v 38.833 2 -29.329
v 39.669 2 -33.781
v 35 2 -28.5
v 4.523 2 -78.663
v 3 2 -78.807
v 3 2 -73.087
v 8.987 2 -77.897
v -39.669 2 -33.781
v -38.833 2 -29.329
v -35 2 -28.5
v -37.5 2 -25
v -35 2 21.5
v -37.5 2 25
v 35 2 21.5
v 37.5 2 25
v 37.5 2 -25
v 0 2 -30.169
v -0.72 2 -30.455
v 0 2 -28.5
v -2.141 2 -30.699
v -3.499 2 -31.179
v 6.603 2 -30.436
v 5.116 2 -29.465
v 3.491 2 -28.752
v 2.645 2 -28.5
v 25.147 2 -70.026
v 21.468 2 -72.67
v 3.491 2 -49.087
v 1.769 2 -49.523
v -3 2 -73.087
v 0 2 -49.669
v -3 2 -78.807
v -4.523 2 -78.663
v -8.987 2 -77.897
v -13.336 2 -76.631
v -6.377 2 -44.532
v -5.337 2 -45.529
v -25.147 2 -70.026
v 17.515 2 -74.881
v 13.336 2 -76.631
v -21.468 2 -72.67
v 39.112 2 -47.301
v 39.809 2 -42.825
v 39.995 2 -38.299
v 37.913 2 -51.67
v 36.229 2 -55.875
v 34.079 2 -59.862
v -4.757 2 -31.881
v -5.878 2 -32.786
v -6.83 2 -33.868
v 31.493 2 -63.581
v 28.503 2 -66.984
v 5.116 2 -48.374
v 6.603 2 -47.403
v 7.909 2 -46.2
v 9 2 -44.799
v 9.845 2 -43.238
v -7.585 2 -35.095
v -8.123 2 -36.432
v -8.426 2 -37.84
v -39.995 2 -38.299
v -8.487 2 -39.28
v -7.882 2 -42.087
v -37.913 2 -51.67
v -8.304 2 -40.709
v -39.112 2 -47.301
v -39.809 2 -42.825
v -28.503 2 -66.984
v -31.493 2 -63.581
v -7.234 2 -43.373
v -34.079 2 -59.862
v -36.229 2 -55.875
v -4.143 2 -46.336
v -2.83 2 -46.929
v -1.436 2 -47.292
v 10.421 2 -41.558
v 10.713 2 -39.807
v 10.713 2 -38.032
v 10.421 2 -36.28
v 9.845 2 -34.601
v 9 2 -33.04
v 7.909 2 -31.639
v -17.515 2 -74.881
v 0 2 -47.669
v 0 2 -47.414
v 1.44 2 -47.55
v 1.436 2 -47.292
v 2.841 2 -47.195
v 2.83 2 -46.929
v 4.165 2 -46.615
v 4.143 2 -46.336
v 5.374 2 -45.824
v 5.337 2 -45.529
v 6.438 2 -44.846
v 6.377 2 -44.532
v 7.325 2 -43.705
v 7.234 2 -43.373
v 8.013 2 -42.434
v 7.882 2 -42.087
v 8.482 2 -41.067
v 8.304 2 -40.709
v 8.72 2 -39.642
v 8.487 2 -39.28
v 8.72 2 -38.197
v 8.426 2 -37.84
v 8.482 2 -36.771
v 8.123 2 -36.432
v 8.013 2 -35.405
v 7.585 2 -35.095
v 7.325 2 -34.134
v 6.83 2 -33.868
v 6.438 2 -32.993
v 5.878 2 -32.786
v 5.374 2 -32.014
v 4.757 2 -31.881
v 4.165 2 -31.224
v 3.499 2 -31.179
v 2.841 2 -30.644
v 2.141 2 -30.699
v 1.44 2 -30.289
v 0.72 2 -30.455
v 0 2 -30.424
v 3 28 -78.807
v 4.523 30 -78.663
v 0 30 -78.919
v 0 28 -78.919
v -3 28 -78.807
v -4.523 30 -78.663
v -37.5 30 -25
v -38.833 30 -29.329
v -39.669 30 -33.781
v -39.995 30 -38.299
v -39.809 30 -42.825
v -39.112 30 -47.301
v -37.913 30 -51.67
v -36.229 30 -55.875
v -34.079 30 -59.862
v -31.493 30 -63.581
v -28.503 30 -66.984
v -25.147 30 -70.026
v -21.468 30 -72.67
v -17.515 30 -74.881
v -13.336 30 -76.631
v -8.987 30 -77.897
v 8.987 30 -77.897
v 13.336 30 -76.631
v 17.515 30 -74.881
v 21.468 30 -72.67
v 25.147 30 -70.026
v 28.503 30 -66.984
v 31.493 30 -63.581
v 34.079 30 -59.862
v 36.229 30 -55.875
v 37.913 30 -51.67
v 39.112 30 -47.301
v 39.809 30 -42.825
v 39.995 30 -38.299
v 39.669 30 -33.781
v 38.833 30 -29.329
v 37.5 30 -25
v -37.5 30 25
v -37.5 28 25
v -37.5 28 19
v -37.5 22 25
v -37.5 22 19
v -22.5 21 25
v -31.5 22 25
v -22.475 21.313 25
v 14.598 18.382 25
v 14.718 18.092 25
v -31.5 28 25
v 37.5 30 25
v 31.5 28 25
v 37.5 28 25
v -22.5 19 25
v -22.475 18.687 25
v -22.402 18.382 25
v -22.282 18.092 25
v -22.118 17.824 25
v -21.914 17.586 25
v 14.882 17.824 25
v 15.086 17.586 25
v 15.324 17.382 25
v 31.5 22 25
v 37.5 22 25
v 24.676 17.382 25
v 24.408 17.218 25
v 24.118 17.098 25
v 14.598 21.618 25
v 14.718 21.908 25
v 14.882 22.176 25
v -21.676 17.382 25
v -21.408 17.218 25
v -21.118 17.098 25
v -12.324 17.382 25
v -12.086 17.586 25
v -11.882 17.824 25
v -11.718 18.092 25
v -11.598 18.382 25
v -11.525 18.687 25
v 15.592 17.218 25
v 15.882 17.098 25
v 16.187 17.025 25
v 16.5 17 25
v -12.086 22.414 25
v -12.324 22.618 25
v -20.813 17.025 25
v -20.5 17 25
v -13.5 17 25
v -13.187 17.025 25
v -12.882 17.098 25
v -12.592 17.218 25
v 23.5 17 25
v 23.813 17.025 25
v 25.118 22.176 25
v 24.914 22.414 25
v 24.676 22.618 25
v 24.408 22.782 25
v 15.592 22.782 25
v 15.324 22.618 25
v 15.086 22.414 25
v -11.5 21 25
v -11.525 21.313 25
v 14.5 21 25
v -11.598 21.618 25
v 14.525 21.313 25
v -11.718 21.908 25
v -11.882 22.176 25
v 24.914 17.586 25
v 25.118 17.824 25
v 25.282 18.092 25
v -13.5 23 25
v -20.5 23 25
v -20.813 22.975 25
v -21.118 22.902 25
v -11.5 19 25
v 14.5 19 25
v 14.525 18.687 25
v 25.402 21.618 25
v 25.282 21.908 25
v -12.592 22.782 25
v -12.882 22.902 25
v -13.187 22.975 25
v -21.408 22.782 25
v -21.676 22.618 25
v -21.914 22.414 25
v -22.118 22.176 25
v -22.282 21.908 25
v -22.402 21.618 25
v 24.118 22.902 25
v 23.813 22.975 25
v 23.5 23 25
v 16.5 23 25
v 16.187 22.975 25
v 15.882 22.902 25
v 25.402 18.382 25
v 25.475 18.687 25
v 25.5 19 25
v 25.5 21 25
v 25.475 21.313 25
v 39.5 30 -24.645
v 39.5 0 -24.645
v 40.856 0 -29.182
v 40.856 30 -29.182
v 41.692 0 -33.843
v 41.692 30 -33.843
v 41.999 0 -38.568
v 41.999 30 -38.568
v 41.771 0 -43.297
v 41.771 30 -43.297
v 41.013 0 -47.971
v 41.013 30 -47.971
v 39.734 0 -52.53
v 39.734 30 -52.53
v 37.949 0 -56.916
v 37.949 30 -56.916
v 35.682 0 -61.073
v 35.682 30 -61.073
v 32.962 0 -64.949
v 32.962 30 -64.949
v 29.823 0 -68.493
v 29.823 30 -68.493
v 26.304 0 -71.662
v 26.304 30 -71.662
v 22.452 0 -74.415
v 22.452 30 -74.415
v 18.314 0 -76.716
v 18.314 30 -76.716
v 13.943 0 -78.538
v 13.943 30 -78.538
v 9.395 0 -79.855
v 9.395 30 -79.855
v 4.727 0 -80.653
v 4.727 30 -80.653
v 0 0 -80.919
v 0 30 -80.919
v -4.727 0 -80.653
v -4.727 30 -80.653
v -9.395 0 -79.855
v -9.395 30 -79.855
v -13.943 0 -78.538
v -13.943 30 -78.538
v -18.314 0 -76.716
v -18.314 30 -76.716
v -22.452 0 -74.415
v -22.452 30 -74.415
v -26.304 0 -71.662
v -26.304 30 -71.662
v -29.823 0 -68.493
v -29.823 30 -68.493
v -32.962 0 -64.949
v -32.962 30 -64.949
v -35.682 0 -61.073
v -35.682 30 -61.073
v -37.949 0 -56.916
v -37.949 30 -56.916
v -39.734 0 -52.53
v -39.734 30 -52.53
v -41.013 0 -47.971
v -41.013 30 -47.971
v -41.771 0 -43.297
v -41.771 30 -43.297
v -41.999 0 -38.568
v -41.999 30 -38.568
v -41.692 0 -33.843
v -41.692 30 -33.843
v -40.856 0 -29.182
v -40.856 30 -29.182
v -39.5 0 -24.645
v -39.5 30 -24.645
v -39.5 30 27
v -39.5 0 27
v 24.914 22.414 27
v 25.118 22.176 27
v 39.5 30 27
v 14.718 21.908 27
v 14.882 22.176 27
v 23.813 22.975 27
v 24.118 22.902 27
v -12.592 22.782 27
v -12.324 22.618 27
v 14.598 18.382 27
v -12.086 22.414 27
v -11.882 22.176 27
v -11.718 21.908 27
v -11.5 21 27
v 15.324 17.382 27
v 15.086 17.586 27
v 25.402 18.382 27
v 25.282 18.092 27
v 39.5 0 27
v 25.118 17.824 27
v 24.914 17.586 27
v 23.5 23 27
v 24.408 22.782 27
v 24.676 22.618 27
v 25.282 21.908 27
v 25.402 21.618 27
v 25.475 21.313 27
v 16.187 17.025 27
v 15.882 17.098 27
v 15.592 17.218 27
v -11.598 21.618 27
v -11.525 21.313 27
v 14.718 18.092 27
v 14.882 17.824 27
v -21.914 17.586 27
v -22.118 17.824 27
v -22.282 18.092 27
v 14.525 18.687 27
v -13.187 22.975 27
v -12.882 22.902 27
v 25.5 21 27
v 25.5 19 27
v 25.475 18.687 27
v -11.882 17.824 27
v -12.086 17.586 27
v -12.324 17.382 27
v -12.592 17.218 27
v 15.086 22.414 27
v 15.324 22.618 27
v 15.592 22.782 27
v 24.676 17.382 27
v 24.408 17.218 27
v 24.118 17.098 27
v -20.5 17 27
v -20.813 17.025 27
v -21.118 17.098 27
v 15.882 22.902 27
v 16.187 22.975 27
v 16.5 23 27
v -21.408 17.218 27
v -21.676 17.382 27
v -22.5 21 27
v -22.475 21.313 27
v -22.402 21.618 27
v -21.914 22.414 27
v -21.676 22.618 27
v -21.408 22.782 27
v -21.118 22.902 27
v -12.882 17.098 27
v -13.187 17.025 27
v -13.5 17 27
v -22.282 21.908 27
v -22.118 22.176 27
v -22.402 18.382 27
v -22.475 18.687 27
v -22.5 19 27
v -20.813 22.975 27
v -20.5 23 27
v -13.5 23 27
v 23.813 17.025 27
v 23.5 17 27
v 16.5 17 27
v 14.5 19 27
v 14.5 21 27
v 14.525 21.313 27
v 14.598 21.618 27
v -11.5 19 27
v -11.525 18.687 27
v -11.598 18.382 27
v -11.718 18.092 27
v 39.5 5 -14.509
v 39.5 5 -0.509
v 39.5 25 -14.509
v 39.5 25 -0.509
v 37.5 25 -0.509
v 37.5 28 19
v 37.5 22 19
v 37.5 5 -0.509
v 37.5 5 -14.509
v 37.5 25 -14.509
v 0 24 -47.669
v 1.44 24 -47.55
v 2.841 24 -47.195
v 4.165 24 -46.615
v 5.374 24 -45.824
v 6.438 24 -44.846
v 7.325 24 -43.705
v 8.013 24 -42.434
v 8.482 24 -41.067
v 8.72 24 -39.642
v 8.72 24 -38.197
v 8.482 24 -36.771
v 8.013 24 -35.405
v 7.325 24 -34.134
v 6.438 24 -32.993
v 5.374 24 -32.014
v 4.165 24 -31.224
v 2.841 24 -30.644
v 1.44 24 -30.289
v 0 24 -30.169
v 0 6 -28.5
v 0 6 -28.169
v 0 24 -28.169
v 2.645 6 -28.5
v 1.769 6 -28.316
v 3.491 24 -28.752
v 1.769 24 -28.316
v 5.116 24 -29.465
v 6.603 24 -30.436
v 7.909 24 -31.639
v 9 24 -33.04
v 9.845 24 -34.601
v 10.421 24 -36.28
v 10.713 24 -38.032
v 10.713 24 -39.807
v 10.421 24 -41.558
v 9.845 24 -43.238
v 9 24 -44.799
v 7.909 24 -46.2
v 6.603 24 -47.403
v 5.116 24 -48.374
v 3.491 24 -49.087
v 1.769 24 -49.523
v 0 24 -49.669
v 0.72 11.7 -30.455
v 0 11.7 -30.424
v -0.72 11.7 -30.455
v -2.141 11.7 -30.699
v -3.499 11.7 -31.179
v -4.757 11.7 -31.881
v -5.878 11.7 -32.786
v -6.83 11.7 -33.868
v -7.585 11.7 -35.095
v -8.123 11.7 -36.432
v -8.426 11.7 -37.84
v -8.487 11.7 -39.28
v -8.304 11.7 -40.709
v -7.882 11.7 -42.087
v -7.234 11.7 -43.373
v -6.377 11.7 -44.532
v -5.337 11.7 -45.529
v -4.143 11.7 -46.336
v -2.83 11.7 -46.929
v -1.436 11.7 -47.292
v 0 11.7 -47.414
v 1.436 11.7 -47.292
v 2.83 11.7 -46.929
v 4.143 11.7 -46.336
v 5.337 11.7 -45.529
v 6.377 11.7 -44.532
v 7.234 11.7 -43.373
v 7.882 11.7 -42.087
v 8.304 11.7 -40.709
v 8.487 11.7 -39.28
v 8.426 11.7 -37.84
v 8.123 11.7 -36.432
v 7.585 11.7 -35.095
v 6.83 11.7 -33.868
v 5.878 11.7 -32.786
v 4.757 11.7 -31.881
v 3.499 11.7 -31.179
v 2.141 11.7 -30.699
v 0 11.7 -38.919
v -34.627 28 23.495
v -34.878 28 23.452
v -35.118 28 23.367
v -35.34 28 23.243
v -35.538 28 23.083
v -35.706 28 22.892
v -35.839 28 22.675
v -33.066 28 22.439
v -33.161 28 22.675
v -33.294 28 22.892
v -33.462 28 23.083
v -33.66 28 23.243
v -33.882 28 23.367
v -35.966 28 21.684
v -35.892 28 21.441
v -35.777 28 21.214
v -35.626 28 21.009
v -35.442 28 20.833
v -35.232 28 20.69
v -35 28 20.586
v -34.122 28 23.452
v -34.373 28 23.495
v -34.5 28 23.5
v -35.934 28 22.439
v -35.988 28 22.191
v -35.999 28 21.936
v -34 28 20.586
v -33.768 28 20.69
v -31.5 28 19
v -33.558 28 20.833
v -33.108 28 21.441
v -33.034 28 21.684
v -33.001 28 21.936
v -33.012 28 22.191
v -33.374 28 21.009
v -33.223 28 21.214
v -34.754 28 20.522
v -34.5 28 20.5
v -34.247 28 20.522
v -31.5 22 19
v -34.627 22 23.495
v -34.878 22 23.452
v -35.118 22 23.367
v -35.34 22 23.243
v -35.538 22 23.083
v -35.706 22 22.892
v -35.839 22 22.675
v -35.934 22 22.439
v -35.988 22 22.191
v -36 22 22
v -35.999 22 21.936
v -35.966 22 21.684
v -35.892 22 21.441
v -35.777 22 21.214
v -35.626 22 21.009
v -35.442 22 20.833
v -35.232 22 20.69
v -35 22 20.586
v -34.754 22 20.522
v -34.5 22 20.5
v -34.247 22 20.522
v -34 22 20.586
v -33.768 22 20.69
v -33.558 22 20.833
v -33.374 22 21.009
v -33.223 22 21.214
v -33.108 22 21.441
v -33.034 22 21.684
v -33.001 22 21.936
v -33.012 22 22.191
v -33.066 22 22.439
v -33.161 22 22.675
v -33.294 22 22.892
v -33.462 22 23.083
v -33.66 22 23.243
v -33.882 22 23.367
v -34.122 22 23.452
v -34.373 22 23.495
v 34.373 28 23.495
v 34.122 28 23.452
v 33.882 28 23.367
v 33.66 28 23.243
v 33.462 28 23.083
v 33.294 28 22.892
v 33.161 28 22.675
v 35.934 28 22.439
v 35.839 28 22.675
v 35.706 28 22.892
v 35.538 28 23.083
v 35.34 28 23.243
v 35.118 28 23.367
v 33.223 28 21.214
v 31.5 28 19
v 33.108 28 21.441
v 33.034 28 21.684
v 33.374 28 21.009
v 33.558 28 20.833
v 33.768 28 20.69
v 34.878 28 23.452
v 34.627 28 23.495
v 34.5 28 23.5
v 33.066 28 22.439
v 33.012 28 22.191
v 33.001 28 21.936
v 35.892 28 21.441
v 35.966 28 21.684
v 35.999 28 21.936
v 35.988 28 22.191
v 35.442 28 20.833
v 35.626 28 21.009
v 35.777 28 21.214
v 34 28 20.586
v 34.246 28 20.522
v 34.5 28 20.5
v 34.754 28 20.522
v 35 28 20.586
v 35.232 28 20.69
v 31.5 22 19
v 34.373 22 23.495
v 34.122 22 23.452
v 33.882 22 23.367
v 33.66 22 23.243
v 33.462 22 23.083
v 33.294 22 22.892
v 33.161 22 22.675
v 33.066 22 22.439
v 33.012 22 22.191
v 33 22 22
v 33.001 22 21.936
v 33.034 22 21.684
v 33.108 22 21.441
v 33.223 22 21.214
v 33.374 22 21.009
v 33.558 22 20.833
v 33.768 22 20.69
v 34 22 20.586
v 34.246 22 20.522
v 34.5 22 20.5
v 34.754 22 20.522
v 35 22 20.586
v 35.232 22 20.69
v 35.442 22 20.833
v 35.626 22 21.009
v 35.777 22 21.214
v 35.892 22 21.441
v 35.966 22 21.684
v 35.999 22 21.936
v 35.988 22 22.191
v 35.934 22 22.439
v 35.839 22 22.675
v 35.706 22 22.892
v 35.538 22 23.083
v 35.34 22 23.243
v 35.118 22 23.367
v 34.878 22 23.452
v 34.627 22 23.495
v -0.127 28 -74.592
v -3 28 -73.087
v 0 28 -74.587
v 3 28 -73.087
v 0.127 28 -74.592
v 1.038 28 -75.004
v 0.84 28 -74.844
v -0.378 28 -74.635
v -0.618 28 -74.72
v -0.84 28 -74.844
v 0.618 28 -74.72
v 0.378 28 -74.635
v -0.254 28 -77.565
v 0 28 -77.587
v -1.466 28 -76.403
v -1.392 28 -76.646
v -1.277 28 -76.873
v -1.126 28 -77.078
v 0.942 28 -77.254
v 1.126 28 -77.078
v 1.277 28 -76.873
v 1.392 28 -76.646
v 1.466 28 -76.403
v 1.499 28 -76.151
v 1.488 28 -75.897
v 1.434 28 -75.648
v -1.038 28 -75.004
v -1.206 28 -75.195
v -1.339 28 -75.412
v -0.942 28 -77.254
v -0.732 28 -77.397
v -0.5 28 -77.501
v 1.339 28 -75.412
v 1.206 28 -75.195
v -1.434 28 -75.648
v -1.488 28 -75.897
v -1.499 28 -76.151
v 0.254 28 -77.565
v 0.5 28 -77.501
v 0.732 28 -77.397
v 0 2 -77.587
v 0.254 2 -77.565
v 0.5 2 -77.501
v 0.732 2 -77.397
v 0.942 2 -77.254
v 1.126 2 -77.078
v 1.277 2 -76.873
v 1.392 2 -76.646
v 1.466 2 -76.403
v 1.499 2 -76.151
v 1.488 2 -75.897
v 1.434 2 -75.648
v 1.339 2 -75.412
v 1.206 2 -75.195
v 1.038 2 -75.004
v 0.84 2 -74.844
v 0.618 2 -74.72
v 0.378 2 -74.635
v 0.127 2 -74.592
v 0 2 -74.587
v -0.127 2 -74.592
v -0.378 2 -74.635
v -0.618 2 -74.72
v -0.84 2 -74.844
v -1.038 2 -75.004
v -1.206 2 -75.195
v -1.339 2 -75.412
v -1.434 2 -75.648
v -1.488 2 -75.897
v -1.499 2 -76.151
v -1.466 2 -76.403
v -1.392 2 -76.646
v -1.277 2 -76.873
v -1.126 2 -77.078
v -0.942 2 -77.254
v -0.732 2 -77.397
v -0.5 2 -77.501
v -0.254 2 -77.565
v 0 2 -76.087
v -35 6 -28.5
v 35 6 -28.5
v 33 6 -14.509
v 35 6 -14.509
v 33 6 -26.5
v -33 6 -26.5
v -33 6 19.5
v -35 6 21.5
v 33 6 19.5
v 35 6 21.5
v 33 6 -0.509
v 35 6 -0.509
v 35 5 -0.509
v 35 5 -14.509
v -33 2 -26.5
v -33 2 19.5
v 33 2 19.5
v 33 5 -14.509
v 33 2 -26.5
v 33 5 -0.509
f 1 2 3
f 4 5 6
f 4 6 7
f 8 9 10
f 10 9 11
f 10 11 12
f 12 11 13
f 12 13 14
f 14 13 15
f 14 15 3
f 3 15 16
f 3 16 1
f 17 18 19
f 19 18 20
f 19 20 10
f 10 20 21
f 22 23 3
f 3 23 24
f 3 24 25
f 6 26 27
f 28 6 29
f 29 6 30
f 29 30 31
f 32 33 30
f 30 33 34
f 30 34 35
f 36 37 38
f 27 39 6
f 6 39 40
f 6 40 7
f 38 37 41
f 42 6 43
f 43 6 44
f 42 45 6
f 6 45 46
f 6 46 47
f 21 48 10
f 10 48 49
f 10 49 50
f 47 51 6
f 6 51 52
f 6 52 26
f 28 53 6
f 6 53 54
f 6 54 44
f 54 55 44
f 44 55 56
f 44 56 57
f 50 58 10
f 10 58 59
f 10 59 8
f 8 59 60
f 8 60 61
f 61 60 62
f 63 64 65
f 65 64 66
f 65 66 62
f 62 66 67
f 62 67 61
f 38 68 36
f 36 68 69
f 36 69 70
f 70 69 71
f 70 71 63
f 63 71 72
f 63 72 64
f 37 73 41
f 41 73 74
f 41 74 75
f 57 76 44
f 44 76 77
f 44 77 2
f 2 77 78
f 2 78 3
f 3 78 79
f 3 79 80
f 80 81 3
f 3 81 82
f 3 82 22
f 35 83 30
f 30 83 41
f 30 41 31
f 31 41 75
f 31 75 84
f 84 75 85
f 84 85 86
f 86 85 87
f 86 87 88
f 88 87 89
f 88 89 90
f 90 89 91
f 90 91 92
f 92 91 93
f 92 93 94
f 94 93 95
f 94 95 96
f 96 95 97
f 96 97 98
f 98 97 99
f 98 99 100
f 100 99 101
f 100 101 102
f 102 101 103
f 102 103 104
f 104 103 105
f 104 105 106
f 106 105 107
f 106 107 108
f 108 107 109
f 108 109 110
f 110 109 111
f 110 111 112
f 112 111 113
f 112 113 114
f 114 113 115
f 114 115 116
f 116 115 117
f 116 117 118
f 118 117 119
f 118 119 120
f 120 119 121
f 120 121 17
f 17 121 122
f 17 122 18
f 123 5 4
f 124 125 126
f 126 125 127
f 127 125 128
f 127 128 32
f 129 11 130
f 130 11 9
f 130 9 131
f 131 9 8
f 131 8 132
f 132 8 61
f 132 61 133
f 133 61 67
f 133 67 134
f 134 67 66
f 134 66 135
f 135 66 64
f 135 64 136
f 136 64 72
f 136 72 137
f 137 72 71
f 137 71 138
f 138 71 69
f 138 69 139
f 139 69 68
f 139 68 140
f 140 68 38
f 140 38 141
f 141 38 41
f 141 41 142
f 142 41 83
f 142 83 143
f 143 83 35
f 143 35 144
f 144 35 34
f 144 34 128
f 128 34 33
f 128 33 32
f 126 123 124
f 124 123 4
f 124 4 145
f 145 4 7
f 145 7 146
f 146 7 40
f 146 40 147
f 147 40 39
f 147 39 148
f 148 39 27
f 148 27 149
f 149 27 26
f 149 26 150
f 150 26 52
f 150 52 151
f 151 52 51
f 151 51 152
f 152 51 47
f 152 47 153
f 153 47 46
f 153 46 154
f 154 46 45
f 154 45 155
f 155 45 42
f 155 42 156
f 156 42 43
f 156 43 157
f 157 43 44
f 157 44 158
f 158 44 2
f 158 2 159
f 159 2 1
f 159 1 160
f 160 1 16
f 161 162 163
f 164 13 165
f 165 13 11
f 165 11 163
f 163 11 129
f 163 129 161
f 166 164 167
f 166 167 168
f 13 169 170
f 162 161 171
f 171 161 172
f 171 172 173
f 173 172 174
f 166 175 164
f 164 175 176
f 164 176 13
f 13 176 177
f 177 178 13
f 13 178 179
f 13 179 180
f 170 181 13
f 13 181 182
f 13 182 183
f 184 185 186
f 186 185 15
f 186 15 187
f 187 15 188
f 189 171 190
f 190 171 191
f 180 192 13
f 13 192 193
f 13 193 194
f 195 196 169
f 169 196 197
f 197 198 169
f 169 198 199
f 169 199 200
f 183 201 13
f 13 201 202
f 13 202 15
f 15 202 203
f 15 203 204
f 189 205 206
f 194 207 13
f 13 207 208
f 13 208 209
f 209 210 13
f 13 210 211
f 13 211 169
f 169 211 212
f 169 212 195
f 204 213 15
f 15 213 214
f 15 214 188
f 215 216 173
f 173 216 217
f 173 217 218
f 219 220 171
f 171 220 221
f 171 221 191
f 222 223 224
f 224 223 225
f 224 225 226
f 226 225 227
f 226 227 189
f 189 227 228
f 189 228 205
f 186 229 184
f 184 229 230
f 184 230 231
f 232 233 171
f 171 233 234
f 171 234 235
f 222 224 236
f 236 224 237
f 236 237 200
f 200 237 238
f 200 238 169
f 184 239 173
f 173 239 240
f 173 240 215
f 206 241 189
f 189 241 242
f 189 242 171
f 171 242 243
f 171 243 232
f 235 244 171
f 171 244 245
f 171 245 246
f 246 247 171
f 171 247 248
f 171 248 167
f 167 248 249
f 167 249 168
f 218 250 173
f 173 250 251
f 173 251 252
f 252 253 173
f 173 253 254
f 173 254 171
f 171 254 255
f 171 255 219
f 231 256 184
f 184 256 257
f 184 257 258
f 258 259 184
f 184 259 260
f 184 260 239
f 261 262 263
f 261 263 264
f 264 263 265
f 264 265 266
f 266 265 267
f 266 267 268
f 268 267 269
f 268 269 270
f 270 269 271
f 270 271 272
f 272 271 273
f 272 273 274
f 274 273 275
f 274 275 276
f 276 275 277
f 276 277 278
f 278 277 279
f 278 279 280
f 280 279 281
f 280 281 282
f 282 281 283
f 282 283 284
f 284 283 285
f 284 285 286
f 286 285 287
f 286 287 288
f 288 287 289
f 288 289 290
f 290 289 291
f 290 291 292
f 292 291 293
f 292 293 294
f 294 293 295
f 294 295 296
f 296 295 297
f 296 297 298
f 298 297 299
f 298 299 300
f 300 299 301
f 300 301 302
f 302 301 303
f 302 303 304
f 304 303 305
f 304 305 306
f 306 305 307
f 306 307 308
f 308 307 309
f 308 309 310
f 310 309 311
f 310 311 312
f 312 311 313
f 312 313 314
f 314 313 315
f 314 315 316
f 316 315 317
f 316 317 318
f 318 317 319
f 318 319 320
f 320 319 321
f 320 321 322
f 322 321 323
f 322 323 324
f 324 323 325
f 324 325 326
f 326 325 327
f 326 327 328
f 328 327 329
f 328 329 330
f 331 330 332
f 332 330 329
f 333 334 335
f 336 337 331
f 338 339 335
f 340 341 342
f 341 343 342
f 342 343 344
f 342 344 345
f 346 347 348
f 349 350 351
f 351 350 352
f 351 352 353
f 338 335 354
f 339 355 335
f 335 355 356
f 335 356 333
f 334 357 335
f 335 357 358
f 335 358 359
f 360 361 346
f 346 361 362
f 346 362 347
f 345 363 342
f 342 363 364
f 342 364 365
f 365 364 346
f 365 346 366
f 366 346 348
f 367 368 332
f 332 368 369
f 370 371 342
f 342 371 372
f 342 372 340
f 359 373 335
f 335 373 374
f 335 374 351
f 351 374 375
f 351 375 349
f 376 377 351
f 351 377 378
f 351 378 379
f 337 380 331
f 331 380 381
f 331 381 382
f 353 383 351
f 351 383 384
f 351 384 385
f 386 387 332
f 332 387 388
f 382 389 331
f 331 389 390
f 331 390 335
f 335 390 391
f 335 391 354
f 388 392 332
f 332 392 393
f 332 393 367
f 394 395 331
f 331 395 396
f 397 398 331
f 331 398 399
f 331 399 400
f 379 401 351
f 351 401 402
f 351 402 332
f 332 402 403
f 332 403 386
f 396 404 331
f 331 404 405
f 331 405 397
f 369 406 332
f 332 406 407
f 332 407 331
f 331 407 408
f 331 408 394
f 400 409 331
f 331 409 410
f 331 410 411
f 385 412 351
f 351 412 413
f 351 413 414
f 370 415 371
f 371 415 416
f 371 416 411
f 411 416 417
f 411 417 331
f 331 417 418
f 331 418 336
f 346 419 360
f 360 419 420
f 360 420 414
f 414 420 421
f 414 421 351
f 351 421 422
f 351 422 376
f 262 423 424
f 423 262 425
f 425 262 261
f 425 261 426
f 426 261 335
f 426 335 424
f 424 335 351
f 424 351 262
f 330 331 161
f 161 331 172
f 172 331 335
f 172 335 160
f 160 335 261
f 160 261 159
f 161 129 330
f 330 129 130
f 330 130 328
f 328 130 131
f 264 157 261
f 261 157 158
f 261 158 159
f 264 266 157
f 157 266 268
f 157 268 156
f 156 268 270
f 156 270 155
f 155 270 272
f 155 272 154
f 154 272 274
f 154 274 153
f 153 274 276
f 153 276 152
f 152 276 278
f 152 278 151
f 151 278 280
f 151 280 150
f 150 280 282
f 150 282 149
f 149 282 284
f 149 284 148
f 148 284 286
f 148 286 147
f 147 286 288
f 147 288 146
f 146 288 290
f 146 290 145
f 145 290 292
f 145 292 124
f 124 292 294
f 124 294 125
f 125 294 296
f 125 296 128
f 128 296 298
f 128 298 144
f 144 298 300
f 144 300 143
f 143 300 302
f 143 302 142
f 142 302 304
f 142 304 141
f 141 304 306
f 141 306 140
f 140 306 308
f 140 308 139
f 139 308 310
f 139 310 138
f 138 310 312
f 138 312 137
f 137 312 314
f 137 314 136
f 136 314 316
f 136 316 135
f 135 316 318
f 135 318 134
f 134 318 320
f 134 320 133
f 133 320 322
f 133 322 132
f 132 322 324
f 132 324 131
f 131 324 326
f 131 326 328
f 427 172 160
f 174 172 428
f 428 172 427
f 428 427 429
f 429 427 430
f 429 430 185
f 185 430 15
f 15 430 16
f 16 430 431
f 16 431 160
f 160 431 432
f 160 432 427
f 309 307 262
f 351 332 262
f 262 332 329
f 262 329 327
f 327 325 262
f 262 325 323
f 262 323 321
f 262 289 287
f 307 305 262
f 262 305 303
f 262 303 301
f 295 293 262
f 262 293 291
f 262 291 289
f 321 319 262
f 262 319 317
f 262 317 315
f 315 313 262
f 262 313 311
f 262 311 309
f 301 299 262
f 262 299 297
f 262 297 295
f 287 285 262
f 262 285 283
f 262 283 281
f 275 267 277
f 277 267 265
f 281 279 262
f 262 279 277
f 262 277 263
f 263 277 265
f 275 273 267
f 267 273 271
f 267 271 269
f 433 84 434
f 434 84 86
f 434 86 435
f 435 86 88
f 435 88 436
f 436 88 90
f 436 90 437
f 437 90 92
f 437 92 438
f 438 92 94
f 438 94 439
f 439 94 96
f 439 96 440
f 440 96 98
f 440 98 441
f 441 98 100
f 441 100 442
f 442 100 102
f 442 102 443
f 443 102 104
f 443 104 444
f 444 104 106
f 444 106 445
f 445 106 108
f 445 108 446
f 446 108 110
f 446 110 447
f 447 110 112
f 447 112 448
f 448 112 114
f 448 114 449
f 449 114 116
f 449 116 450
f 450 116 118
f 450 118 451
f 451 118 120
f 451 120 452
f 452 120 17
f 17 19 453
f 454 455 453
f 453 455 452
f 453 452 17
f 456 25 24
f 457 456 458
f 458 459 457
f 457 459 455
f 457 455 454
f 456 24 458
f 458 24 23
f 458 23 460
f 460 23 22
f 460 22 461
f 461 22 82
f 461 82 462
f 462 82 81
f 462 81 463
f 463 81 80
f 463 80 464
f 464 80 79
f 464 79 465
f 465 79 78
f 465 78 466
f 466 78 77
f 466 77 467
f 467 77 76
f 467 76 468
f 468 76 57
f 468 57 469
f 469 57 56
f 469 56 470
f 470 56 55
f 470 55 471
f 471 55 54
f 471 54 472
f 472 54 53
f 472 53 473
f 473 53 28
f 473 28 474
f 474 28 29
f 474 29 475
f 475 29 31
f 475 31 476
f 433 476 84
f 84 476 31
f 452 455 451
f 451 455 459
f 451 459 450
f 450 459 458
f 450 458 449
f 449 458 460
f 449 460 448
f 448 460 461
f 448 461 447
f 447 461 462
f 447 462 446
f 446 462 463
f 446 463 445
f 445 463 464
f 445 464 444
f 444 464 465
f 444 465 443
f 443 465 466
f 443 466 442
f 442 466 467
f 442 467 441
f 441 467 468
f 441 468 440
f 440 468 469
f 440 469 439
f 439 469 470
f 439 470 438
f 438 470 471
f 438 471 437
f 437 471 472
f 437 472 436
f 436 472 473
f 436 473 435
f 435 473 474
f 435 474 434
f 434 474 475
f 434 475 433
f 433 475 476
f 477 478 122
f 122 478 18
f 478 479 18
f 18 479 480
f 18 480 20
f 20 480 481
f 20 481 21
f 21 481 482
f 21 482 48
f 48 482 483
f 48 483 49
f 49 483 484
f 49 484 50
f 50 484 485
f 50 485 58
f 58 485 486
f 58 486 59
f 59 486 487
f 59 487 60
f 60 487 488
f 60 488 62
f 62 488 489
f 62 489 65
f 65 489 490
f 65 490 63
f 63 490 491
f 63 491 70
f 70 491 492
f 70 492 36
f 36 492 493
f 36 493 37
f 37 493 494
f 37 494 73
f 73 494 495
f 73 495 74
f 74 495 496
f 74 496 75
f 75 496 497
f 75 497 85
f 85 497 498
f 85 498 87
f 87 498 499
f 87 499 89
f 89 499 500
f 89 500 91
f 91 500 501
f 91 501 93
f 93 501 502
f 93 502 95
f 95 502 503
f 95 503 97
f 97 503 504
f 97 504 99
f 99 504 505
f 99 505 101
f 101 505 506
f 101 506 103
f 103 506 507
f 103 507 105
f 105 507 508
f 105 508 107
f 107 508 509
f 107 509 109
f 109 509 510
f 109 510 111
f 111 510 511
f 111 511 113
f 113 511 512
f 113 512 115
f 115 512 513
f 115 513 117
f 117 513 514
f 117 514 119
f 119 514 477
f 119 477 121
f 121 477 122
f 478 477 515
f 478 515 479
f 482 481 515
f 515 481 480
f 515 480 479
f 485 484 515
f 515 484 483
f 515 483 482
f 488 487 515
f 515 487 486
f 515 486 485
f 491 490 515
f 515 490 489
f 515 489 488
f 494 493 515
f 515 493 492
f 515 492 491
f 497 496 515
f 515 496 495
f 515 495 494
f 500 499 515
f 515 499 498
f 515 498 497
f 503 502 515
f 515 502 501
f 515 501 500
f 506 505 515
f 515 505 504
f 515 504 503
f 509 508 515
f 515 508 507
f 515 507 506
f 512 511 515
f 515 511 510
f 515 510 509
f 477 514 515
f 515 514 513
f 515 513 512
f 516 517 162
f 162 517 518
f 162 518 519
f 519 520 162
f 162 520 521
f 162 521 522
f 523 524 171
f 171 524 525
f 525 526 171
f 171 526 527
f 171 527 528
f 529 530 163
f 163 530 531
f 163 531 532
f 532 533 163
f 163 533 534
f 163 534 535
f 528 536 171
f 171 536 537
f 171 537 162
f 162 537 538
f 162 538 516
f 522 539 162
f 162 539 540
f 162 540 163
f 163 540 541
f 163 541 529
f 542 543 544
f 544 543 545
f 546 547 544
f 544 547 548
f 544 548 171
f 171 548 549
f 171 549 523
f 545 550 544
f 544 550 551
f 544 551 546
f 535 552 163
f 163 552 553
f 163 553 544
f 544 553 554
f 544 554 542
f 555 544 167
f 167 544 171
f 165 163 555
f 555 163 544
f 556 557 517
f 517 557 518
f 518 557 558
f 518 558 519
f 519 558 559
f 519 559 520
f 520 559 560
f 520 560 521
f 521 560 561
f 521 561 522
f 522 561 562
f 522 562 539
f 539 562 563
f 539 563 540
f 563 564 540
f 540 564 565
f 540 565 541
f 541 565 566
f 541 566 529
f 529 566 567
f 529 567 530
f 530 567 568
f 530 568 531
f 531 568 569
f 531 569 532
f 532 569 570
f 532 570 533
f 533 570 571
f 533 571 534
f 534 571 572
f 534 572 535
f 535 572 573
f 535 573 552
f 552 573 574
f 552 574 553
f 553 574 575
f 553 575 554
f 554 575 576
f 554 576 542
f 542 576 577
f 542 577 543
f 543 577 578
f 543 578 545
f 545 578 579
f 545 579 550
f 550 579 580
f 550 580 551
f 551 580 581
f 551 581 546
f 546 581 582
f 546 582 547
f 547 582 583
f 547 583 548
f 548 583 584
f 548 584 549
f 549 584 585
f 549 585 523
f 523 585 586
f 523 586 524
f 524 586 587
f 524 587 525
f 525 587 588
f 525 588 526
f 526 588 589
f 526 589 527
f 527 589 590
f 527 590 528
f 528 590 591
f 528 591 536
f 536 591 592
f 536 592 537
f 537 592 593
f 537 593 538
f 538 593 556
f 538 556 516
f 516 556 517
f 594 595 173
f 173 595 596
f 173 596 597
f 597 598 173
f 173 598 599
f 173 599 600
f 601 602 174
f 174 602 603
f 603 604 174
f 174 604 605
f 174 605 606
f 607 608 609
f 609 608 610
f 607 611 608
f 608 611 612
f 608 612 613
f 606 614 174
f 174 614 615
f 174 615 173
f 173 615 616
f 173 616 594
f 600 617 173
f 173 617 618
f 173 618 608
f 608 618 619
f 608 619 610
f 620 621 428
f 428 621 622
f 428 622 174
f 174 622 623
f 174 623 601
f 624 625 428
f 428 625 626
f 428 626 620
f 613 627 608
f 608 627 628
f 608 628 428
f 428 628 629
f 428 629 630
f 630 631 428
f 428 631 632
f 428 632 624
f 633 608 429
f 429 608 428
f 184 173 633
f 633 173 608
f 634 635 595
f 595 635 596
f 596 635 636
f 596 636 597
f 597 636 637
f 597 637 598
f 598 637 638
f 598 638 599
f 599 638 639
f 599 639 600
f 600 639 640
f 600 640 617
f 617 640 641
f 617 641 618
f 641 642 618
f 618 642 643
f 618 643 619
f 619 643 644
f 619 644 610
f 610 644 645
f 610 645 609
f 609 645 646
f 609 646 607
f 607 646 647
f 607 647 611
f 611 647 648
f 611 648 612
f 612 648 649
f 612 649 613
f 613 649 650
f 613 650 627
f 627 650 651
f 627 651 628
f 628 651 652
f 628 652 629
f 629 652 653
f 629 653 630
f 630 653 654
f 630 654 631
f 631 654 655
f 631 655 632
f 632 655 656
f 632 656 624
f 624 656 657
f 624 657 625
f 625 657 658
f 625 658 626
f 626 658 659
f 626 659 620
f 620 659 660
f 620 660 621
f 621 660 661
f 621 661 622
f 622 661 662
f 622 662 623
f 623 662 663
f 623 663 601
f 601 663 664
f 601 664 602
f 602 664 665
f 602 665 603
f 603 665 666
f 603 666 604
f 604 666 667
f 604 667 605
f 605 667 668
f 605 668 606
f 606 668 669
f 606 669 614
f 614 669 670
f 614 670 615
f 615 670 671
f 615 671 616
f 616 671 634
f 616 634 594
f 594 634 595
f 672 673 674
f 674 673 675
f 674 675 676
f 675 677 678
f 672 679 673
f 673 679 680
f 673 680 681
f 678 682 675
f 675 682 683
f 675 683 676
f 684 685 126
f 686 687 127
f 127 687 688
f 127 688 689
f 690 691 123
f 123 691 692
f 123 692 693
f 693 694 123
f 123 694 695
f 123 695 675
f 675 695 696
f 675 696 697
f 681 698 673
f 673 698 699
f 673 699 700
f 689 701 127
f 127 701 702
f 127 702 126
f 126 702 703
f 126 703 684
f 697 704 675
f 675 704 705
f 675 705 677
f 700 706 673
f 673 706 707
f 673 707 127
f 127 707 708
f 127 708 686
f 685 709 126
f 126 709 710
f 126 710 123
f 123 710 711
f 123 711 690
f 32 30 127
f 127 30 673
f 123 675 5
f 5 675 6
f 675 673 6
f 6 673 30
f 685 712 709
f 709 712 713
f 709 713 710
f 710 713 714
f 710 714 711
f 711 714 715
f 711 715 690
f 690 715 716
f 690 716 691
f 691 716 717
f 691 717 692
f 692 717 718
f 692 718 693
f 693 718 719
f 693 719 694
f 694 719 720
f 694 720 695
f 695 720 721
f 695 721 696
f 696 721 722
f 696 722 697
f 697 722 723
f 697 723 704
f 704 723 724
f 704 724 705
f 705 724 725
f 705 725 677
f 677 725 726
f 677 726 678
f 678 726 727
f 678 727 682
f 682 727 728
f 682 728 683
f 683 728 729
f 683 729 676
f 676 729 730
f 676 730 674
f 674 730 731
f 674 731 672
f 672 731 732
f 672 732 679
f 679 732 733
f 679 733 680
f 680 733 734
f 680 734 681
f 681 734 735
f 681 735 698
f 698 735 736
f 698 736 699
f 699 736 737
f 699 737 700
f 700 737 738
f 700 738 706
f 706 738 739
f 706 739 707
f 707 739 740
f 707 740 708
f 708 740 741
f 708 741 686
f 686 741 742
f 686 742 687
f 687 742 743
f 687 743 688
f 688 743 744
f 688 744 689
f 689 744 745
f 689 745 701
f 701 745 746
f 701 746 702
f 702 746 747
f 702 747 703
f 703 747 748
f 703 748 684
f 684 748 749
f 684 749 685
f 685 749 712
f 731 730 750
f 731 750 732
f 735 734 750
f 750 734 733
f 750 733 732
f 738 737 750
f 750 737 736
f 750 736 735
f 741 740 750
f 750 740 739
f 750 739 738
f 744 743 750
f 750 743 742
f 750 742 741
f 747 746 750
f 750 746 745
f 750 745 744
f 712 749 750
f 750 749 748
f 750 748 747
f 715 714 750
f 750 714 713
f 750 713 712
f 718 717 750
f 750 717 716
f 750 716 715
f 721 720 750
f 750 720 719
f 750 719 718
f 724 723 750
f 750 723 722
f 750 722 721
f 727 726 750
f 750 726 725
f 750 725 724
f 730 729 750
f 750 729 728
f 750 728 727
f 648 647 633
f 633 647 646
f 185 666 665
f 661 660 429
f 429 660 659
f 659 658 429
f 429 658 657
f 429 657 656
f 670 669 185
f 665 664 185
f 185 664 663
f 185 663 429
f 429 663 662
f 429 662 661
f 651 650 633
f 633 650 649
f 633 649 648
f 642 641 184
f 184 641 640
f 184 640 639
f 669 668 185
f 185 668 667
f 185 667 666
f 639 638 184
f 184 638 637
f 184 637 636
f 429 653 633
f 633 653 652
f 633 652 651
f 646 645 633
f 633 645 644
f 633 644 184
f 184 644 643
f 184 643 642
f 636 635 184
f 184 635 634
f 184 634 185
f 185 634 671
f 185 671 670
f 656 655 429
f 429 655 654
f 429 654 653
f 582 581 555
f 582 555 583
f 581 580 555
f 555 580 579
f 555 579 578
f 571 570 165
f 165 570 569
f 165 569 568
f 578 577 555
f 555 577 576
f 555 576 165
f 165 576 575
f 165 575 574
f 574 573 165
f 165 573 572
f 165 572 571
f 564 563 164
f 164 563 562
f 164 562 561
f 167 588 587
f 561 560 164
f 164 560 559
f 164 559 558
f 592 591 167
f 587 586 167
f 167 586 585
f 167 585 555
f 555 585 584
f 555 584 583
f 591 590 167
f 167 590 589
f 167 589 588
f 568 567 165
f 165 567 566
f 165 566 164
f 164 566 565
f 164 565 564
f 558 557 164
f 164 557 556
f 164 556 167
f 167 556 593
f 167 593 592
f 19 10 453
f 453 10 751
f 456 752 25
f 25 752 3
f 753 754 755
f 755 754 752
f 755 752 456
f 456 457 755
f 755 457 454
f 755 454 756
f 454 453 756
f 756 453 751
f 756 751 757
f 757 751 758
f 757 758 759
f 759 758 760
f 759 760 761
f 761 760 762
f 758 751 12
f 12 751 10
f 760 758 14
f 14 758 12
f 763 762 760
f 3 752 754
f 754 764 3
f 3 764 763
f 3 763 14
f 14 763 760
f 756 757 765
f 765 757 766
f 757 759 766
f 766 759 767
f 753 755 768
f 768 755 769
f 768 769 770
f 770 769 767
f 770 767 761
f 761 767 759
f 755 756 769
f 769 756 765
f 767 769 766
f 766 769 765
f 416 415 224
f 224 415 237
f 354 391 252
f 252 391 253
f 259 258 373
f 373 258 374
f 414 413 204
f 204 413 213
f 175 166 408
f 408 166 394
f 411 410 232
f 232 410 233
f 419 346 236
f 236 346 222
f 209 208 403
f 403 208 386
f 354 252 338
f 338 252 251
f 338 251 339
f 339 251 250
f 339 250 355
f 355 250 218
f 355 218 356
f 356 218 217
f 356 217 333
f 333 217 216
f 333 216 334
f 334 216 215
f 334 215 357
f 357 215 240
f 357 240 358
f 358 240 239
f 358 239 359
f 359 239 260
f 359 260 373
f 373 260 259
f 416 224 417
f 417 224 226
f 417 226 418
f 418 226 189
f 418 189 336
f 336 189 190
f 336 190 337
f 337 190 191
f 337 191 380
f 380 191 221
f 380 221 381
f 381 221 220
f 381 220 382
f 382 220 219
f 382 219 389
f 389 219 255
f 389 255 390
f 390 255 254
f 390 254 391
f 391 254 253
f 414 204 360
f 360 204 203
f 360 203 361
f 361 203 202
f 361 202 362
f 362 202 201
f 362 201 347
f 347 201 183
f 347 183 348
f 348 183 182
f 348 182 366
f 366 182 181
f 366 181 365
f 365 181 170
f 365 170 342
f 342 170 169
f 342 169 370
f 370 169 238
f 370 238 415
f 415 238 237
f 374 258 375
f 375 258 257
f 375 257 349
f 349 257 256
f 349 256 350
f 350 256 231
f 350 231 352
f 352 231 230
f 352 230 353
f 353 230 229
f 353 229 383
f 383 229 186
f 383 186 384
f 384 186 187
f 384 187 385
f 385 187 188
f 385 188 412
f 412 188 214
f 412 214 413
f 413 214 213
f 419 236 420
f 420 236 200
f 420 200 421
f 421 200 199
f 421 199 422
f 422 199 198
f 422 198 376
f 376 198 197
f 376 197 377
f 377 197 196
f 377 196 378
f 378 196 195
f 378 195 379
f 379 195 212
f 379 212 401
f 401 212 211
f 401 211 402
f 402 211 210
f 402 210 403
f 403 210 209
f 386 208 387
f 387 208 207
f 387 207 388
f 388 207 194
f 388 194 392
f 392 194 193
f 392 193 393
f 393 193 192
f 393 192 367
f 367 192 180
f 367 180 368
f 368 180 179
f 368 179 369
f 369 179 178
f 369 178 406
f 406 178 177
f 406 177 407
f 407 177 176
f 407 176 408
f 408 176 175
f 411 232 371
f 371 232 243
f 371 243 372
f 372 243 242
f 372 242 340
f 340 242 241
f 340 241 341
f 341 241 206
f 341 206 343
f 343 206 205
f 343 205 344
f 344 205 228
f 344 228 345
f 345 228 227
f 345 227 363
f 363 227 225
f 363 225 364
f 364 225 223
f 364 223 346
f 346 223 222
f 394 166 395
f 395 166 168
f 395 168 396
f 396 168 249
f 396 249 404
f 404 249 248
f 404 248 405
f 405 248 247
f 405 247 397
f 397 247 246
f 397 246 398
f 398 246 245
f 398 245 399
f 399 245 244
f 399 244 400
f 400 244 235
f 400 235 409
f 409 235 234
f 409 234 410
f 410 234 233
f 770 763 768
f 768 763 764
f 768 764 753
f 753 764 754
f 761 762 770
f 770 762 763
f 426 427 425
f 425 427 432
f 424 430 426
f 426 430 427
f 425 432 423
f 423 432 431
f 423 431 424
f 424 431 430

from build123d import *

# Parameters (mm, degrees)
BOSS_EXTRUDE1_DEPTH = 2
BOSS_EXTRUDE2_DEPTH = 30
BOSS_EXTRUDE3_DEPTH = 22
SKETCH4_R           = 8.495
BOSS_EXTRUDE4_DEPTH = 9.7
SKETCH5_W           = 6
SKETCH5_H           = 6
SKETCH5_R           = 1.5
BOSS_EXTRUDE5_DEPTH = 26
SKETCH6_W           = 75
SKETCH6_H           = 20
CUT_EXTRUDE1_DEPTH  = 6
SKETCH8_W           = 70
SKETCH8_H           = 50
SKETCH8_W_2         = 66
SKETCH8_H_2         = 46
BOSS_EXTRUDE6_DEPTH = 4
SKETCH9_W           = 11
SKETCH9_H           = 6
CUT_EXTRUDE3_DEPTH  = 4
FILLET1_R           = 2
SKETCH10_W          = 14
SKETCH10_H          = 20
CUT_EXTRUDE4_DEPTH  = 10


with BuildPart() as part:
    # Sketch1 → Boss-Extrude1 (new body)
    with BuildSketch(Plane(origin=(0, 0, 0), x_dir=(1, 0, 0), z_dir=(0, 1, 0))):
        with BuildLine():
            Line((-37.5, 25), (-37.5, -25))
            Line((-37.5, -25), (37.5, -25))
            Line((37.5, -25), (37.5, 25))
            ThreePointArc((37.5, 25), (0, 78.919410907), (-37.5, 25))
        make_face()
    extrude(amount=BOSS_EXTRUDE1_DEPTH)

    # Sketch2 → Boss-Extrude2 (add)
    with BuildSketch(Plane.XZ):
        with BuildLine():
            Line((-39.5, -24.645308483), (-39.5, 27))
            Line((-39.5, 27), (39.5, 27))
            Line((39.5, 27), (39.5, -24.645308483))
            ThreePointArc((39.5, -24.645308483), (0, -80.919410907), (-39.5, -24.645308483))
        make_face()
        with BuildLine():
            Line((-37.5, -25), (-37.5, 25))
            Line((-37.5, 25), (37.5, 25))
            Line((37.5, 25), (37.5, -25))
            ThreePointArc((37.5, -25), (0, -78.919410907), (-37.5, -25))
        make_face(mode=Mode.SUBTRACT)
    extrude(amount=-BOSS_EXTRUDE2_DEPTH)

    # Sketch3 → Boss-Extrude3 (add)
    with BuildSketch(Plane(origin=(0, 2, 0), x_dir=(1, 0, 0), z_dir=(0, 1, 0))):
        with BuildLine():
            Line((0, 49.669410907), (0, 47.669410907))
            ThreePointArc((0, 47.669410907), (8.75, 38.919410907), (0, 30.169410907))
            Line((0, 30.169410907), (0, 28.169410907))
            ThreePointArc((0, 28.169410907), (10.75, 38.919410907), (0, 49.669410907))
        make_face()
    extrude(amount=BOSS_EXTRUDE3_DEPTH)

    # Sketch4 → Boss-Extrude4 (add)
    with BuildSketch(Plane(origin=(0, 2, 0), x_dir=(1, 0, 0), z_dir=(0, 1, 0))):
        with Locations(Location((0, 38.919410907, 0), (0, 0, 270))):
            Circle(SKETCH4_R)
    extrude(amount=BOSS_EXTRUDE4_DEPTH)

    # Sketch5 → Boss-Extrude5 (add)
    # profile 1 of 3: a face of its own
    with BuildSketch(Plane(origin=(0, 2, 0), x_dir=(1, 0, 0), z_dir=(0, 1, 0))):
        with Locations((-34.5, -22)):
            Rectangle(SKETCH5_W, SKETCH5_H)
        with Locations(Location((-34.5, -22, 0), (0, 0, 90))):
            Circle(SKETCH5_R, mode=Mode.SUBTRACT)
    # profile 2 of 3: a face of its own
    with BuildSketch(Plane(origin=(0, 2, 0), x_dir=(1, 0, 0), z_dir=(0, 1, 0))):
        with Locations((34.5, -22)):
            Rectangle(SKETCH5_W, SKETCH5_H)
        with Locations(Location((34.5, -22, 0), (0, 0, 90))):
            Circle(SKETCH5_R, mode=Mode.SUBTRACT)
    # profile 3 of 3: a face of its own
    with BuildSketch(Plane(origin=(0, 2, 0), x_dir=(1, 0, 0), z_dir=(0, 1, 0))):
        with Locations((0, 76.087024619)):
            Rectangle(SKETCH5_W, SKETCH5_H)
        with Locations(Location((0, 76.087024619, 0), (0, 0, 90))):
            Circle(SKETCH5_R, mode=Mode.SUBTRACT)
    extrude(amount=BOSS_EXTRUDE5_DEPTH)

    # Sketch6 → Cut-Extrude1 (cut)
    with BuildSketch(Plane(origin=(0, 0, 19), x_dir=(-1, 0, 0), z_dir=(0, 0, -1))):
        with Locations((0, 12)):
            Rectangle(SKETCH6_W, SKETCH6_H)
    extrude(amount=-CUT_EXTRUDE1_DEPTH, mode=Mode.SUBTRACT)

    # Sketch8 → Boss-Extrude6 (add)
    with BuildSketch(Plane(origin=(0, 2, 0), x_dir=(1, 0, 0), z_dir=(0, 1, 0))):
        with Locations((0, 3.5)):
            Rectangle(SKETCH8_W, SKETCH8_H)
        with Locations((0, 3.5)):
            Rectangle(SKETCH8_W_2, SKETCH8_H_2, mode=Mode.SUBTRACT)
    extrude(amount=BOSS_EXTRUDE6_DEPTH)

    # Sketch9 → Cut-Extrude3 (cut)
    with BuildSketch(Plane.XY.offset(27)):
        with Locations((-17, 20)):
            Rectangle(SKETCH9_W, SKETCH9_H)
        with Locations((20, 20)):
            Rectangle(SKETCH9_W, SKETCH9_H)
    extrude(amount=-CUT_EXTRUDE3_DEPTH, mode=Mode.SUBTRACT)

    # Fillet1
    fillet1_edges = [part.edges().sort_by_distance(p)[0] for p in [
        (-22.5, 17, 26),
        (-22.5, 23, 26),
        (-11.5, 23, 26),
        (-11.5, 17, 26),
        (14.5, 17, 26),
        (14.5, 23, 26),
        (25.5, 23, 26),
        (25.5, 17, 26),
    ]]
    fillet(fillet1_edges, radius=FILLET1_R)

    # Sketch10 → Cut-Extrude4 (cut)
    with BuildSketch(Plane(origin=(39.5, 0, 0), x_dir=(0, 0, -1), z_dir=(1, 0, 0))):
        with Locations((7.50936627, 15)):
            Rectangle(SKETCH10_W, SKETCH10_H)
    extrude(amount=-CUT_EXTRUDE4_DEPTH, mode=Mode.SUBTRACT)


solid = part.part
